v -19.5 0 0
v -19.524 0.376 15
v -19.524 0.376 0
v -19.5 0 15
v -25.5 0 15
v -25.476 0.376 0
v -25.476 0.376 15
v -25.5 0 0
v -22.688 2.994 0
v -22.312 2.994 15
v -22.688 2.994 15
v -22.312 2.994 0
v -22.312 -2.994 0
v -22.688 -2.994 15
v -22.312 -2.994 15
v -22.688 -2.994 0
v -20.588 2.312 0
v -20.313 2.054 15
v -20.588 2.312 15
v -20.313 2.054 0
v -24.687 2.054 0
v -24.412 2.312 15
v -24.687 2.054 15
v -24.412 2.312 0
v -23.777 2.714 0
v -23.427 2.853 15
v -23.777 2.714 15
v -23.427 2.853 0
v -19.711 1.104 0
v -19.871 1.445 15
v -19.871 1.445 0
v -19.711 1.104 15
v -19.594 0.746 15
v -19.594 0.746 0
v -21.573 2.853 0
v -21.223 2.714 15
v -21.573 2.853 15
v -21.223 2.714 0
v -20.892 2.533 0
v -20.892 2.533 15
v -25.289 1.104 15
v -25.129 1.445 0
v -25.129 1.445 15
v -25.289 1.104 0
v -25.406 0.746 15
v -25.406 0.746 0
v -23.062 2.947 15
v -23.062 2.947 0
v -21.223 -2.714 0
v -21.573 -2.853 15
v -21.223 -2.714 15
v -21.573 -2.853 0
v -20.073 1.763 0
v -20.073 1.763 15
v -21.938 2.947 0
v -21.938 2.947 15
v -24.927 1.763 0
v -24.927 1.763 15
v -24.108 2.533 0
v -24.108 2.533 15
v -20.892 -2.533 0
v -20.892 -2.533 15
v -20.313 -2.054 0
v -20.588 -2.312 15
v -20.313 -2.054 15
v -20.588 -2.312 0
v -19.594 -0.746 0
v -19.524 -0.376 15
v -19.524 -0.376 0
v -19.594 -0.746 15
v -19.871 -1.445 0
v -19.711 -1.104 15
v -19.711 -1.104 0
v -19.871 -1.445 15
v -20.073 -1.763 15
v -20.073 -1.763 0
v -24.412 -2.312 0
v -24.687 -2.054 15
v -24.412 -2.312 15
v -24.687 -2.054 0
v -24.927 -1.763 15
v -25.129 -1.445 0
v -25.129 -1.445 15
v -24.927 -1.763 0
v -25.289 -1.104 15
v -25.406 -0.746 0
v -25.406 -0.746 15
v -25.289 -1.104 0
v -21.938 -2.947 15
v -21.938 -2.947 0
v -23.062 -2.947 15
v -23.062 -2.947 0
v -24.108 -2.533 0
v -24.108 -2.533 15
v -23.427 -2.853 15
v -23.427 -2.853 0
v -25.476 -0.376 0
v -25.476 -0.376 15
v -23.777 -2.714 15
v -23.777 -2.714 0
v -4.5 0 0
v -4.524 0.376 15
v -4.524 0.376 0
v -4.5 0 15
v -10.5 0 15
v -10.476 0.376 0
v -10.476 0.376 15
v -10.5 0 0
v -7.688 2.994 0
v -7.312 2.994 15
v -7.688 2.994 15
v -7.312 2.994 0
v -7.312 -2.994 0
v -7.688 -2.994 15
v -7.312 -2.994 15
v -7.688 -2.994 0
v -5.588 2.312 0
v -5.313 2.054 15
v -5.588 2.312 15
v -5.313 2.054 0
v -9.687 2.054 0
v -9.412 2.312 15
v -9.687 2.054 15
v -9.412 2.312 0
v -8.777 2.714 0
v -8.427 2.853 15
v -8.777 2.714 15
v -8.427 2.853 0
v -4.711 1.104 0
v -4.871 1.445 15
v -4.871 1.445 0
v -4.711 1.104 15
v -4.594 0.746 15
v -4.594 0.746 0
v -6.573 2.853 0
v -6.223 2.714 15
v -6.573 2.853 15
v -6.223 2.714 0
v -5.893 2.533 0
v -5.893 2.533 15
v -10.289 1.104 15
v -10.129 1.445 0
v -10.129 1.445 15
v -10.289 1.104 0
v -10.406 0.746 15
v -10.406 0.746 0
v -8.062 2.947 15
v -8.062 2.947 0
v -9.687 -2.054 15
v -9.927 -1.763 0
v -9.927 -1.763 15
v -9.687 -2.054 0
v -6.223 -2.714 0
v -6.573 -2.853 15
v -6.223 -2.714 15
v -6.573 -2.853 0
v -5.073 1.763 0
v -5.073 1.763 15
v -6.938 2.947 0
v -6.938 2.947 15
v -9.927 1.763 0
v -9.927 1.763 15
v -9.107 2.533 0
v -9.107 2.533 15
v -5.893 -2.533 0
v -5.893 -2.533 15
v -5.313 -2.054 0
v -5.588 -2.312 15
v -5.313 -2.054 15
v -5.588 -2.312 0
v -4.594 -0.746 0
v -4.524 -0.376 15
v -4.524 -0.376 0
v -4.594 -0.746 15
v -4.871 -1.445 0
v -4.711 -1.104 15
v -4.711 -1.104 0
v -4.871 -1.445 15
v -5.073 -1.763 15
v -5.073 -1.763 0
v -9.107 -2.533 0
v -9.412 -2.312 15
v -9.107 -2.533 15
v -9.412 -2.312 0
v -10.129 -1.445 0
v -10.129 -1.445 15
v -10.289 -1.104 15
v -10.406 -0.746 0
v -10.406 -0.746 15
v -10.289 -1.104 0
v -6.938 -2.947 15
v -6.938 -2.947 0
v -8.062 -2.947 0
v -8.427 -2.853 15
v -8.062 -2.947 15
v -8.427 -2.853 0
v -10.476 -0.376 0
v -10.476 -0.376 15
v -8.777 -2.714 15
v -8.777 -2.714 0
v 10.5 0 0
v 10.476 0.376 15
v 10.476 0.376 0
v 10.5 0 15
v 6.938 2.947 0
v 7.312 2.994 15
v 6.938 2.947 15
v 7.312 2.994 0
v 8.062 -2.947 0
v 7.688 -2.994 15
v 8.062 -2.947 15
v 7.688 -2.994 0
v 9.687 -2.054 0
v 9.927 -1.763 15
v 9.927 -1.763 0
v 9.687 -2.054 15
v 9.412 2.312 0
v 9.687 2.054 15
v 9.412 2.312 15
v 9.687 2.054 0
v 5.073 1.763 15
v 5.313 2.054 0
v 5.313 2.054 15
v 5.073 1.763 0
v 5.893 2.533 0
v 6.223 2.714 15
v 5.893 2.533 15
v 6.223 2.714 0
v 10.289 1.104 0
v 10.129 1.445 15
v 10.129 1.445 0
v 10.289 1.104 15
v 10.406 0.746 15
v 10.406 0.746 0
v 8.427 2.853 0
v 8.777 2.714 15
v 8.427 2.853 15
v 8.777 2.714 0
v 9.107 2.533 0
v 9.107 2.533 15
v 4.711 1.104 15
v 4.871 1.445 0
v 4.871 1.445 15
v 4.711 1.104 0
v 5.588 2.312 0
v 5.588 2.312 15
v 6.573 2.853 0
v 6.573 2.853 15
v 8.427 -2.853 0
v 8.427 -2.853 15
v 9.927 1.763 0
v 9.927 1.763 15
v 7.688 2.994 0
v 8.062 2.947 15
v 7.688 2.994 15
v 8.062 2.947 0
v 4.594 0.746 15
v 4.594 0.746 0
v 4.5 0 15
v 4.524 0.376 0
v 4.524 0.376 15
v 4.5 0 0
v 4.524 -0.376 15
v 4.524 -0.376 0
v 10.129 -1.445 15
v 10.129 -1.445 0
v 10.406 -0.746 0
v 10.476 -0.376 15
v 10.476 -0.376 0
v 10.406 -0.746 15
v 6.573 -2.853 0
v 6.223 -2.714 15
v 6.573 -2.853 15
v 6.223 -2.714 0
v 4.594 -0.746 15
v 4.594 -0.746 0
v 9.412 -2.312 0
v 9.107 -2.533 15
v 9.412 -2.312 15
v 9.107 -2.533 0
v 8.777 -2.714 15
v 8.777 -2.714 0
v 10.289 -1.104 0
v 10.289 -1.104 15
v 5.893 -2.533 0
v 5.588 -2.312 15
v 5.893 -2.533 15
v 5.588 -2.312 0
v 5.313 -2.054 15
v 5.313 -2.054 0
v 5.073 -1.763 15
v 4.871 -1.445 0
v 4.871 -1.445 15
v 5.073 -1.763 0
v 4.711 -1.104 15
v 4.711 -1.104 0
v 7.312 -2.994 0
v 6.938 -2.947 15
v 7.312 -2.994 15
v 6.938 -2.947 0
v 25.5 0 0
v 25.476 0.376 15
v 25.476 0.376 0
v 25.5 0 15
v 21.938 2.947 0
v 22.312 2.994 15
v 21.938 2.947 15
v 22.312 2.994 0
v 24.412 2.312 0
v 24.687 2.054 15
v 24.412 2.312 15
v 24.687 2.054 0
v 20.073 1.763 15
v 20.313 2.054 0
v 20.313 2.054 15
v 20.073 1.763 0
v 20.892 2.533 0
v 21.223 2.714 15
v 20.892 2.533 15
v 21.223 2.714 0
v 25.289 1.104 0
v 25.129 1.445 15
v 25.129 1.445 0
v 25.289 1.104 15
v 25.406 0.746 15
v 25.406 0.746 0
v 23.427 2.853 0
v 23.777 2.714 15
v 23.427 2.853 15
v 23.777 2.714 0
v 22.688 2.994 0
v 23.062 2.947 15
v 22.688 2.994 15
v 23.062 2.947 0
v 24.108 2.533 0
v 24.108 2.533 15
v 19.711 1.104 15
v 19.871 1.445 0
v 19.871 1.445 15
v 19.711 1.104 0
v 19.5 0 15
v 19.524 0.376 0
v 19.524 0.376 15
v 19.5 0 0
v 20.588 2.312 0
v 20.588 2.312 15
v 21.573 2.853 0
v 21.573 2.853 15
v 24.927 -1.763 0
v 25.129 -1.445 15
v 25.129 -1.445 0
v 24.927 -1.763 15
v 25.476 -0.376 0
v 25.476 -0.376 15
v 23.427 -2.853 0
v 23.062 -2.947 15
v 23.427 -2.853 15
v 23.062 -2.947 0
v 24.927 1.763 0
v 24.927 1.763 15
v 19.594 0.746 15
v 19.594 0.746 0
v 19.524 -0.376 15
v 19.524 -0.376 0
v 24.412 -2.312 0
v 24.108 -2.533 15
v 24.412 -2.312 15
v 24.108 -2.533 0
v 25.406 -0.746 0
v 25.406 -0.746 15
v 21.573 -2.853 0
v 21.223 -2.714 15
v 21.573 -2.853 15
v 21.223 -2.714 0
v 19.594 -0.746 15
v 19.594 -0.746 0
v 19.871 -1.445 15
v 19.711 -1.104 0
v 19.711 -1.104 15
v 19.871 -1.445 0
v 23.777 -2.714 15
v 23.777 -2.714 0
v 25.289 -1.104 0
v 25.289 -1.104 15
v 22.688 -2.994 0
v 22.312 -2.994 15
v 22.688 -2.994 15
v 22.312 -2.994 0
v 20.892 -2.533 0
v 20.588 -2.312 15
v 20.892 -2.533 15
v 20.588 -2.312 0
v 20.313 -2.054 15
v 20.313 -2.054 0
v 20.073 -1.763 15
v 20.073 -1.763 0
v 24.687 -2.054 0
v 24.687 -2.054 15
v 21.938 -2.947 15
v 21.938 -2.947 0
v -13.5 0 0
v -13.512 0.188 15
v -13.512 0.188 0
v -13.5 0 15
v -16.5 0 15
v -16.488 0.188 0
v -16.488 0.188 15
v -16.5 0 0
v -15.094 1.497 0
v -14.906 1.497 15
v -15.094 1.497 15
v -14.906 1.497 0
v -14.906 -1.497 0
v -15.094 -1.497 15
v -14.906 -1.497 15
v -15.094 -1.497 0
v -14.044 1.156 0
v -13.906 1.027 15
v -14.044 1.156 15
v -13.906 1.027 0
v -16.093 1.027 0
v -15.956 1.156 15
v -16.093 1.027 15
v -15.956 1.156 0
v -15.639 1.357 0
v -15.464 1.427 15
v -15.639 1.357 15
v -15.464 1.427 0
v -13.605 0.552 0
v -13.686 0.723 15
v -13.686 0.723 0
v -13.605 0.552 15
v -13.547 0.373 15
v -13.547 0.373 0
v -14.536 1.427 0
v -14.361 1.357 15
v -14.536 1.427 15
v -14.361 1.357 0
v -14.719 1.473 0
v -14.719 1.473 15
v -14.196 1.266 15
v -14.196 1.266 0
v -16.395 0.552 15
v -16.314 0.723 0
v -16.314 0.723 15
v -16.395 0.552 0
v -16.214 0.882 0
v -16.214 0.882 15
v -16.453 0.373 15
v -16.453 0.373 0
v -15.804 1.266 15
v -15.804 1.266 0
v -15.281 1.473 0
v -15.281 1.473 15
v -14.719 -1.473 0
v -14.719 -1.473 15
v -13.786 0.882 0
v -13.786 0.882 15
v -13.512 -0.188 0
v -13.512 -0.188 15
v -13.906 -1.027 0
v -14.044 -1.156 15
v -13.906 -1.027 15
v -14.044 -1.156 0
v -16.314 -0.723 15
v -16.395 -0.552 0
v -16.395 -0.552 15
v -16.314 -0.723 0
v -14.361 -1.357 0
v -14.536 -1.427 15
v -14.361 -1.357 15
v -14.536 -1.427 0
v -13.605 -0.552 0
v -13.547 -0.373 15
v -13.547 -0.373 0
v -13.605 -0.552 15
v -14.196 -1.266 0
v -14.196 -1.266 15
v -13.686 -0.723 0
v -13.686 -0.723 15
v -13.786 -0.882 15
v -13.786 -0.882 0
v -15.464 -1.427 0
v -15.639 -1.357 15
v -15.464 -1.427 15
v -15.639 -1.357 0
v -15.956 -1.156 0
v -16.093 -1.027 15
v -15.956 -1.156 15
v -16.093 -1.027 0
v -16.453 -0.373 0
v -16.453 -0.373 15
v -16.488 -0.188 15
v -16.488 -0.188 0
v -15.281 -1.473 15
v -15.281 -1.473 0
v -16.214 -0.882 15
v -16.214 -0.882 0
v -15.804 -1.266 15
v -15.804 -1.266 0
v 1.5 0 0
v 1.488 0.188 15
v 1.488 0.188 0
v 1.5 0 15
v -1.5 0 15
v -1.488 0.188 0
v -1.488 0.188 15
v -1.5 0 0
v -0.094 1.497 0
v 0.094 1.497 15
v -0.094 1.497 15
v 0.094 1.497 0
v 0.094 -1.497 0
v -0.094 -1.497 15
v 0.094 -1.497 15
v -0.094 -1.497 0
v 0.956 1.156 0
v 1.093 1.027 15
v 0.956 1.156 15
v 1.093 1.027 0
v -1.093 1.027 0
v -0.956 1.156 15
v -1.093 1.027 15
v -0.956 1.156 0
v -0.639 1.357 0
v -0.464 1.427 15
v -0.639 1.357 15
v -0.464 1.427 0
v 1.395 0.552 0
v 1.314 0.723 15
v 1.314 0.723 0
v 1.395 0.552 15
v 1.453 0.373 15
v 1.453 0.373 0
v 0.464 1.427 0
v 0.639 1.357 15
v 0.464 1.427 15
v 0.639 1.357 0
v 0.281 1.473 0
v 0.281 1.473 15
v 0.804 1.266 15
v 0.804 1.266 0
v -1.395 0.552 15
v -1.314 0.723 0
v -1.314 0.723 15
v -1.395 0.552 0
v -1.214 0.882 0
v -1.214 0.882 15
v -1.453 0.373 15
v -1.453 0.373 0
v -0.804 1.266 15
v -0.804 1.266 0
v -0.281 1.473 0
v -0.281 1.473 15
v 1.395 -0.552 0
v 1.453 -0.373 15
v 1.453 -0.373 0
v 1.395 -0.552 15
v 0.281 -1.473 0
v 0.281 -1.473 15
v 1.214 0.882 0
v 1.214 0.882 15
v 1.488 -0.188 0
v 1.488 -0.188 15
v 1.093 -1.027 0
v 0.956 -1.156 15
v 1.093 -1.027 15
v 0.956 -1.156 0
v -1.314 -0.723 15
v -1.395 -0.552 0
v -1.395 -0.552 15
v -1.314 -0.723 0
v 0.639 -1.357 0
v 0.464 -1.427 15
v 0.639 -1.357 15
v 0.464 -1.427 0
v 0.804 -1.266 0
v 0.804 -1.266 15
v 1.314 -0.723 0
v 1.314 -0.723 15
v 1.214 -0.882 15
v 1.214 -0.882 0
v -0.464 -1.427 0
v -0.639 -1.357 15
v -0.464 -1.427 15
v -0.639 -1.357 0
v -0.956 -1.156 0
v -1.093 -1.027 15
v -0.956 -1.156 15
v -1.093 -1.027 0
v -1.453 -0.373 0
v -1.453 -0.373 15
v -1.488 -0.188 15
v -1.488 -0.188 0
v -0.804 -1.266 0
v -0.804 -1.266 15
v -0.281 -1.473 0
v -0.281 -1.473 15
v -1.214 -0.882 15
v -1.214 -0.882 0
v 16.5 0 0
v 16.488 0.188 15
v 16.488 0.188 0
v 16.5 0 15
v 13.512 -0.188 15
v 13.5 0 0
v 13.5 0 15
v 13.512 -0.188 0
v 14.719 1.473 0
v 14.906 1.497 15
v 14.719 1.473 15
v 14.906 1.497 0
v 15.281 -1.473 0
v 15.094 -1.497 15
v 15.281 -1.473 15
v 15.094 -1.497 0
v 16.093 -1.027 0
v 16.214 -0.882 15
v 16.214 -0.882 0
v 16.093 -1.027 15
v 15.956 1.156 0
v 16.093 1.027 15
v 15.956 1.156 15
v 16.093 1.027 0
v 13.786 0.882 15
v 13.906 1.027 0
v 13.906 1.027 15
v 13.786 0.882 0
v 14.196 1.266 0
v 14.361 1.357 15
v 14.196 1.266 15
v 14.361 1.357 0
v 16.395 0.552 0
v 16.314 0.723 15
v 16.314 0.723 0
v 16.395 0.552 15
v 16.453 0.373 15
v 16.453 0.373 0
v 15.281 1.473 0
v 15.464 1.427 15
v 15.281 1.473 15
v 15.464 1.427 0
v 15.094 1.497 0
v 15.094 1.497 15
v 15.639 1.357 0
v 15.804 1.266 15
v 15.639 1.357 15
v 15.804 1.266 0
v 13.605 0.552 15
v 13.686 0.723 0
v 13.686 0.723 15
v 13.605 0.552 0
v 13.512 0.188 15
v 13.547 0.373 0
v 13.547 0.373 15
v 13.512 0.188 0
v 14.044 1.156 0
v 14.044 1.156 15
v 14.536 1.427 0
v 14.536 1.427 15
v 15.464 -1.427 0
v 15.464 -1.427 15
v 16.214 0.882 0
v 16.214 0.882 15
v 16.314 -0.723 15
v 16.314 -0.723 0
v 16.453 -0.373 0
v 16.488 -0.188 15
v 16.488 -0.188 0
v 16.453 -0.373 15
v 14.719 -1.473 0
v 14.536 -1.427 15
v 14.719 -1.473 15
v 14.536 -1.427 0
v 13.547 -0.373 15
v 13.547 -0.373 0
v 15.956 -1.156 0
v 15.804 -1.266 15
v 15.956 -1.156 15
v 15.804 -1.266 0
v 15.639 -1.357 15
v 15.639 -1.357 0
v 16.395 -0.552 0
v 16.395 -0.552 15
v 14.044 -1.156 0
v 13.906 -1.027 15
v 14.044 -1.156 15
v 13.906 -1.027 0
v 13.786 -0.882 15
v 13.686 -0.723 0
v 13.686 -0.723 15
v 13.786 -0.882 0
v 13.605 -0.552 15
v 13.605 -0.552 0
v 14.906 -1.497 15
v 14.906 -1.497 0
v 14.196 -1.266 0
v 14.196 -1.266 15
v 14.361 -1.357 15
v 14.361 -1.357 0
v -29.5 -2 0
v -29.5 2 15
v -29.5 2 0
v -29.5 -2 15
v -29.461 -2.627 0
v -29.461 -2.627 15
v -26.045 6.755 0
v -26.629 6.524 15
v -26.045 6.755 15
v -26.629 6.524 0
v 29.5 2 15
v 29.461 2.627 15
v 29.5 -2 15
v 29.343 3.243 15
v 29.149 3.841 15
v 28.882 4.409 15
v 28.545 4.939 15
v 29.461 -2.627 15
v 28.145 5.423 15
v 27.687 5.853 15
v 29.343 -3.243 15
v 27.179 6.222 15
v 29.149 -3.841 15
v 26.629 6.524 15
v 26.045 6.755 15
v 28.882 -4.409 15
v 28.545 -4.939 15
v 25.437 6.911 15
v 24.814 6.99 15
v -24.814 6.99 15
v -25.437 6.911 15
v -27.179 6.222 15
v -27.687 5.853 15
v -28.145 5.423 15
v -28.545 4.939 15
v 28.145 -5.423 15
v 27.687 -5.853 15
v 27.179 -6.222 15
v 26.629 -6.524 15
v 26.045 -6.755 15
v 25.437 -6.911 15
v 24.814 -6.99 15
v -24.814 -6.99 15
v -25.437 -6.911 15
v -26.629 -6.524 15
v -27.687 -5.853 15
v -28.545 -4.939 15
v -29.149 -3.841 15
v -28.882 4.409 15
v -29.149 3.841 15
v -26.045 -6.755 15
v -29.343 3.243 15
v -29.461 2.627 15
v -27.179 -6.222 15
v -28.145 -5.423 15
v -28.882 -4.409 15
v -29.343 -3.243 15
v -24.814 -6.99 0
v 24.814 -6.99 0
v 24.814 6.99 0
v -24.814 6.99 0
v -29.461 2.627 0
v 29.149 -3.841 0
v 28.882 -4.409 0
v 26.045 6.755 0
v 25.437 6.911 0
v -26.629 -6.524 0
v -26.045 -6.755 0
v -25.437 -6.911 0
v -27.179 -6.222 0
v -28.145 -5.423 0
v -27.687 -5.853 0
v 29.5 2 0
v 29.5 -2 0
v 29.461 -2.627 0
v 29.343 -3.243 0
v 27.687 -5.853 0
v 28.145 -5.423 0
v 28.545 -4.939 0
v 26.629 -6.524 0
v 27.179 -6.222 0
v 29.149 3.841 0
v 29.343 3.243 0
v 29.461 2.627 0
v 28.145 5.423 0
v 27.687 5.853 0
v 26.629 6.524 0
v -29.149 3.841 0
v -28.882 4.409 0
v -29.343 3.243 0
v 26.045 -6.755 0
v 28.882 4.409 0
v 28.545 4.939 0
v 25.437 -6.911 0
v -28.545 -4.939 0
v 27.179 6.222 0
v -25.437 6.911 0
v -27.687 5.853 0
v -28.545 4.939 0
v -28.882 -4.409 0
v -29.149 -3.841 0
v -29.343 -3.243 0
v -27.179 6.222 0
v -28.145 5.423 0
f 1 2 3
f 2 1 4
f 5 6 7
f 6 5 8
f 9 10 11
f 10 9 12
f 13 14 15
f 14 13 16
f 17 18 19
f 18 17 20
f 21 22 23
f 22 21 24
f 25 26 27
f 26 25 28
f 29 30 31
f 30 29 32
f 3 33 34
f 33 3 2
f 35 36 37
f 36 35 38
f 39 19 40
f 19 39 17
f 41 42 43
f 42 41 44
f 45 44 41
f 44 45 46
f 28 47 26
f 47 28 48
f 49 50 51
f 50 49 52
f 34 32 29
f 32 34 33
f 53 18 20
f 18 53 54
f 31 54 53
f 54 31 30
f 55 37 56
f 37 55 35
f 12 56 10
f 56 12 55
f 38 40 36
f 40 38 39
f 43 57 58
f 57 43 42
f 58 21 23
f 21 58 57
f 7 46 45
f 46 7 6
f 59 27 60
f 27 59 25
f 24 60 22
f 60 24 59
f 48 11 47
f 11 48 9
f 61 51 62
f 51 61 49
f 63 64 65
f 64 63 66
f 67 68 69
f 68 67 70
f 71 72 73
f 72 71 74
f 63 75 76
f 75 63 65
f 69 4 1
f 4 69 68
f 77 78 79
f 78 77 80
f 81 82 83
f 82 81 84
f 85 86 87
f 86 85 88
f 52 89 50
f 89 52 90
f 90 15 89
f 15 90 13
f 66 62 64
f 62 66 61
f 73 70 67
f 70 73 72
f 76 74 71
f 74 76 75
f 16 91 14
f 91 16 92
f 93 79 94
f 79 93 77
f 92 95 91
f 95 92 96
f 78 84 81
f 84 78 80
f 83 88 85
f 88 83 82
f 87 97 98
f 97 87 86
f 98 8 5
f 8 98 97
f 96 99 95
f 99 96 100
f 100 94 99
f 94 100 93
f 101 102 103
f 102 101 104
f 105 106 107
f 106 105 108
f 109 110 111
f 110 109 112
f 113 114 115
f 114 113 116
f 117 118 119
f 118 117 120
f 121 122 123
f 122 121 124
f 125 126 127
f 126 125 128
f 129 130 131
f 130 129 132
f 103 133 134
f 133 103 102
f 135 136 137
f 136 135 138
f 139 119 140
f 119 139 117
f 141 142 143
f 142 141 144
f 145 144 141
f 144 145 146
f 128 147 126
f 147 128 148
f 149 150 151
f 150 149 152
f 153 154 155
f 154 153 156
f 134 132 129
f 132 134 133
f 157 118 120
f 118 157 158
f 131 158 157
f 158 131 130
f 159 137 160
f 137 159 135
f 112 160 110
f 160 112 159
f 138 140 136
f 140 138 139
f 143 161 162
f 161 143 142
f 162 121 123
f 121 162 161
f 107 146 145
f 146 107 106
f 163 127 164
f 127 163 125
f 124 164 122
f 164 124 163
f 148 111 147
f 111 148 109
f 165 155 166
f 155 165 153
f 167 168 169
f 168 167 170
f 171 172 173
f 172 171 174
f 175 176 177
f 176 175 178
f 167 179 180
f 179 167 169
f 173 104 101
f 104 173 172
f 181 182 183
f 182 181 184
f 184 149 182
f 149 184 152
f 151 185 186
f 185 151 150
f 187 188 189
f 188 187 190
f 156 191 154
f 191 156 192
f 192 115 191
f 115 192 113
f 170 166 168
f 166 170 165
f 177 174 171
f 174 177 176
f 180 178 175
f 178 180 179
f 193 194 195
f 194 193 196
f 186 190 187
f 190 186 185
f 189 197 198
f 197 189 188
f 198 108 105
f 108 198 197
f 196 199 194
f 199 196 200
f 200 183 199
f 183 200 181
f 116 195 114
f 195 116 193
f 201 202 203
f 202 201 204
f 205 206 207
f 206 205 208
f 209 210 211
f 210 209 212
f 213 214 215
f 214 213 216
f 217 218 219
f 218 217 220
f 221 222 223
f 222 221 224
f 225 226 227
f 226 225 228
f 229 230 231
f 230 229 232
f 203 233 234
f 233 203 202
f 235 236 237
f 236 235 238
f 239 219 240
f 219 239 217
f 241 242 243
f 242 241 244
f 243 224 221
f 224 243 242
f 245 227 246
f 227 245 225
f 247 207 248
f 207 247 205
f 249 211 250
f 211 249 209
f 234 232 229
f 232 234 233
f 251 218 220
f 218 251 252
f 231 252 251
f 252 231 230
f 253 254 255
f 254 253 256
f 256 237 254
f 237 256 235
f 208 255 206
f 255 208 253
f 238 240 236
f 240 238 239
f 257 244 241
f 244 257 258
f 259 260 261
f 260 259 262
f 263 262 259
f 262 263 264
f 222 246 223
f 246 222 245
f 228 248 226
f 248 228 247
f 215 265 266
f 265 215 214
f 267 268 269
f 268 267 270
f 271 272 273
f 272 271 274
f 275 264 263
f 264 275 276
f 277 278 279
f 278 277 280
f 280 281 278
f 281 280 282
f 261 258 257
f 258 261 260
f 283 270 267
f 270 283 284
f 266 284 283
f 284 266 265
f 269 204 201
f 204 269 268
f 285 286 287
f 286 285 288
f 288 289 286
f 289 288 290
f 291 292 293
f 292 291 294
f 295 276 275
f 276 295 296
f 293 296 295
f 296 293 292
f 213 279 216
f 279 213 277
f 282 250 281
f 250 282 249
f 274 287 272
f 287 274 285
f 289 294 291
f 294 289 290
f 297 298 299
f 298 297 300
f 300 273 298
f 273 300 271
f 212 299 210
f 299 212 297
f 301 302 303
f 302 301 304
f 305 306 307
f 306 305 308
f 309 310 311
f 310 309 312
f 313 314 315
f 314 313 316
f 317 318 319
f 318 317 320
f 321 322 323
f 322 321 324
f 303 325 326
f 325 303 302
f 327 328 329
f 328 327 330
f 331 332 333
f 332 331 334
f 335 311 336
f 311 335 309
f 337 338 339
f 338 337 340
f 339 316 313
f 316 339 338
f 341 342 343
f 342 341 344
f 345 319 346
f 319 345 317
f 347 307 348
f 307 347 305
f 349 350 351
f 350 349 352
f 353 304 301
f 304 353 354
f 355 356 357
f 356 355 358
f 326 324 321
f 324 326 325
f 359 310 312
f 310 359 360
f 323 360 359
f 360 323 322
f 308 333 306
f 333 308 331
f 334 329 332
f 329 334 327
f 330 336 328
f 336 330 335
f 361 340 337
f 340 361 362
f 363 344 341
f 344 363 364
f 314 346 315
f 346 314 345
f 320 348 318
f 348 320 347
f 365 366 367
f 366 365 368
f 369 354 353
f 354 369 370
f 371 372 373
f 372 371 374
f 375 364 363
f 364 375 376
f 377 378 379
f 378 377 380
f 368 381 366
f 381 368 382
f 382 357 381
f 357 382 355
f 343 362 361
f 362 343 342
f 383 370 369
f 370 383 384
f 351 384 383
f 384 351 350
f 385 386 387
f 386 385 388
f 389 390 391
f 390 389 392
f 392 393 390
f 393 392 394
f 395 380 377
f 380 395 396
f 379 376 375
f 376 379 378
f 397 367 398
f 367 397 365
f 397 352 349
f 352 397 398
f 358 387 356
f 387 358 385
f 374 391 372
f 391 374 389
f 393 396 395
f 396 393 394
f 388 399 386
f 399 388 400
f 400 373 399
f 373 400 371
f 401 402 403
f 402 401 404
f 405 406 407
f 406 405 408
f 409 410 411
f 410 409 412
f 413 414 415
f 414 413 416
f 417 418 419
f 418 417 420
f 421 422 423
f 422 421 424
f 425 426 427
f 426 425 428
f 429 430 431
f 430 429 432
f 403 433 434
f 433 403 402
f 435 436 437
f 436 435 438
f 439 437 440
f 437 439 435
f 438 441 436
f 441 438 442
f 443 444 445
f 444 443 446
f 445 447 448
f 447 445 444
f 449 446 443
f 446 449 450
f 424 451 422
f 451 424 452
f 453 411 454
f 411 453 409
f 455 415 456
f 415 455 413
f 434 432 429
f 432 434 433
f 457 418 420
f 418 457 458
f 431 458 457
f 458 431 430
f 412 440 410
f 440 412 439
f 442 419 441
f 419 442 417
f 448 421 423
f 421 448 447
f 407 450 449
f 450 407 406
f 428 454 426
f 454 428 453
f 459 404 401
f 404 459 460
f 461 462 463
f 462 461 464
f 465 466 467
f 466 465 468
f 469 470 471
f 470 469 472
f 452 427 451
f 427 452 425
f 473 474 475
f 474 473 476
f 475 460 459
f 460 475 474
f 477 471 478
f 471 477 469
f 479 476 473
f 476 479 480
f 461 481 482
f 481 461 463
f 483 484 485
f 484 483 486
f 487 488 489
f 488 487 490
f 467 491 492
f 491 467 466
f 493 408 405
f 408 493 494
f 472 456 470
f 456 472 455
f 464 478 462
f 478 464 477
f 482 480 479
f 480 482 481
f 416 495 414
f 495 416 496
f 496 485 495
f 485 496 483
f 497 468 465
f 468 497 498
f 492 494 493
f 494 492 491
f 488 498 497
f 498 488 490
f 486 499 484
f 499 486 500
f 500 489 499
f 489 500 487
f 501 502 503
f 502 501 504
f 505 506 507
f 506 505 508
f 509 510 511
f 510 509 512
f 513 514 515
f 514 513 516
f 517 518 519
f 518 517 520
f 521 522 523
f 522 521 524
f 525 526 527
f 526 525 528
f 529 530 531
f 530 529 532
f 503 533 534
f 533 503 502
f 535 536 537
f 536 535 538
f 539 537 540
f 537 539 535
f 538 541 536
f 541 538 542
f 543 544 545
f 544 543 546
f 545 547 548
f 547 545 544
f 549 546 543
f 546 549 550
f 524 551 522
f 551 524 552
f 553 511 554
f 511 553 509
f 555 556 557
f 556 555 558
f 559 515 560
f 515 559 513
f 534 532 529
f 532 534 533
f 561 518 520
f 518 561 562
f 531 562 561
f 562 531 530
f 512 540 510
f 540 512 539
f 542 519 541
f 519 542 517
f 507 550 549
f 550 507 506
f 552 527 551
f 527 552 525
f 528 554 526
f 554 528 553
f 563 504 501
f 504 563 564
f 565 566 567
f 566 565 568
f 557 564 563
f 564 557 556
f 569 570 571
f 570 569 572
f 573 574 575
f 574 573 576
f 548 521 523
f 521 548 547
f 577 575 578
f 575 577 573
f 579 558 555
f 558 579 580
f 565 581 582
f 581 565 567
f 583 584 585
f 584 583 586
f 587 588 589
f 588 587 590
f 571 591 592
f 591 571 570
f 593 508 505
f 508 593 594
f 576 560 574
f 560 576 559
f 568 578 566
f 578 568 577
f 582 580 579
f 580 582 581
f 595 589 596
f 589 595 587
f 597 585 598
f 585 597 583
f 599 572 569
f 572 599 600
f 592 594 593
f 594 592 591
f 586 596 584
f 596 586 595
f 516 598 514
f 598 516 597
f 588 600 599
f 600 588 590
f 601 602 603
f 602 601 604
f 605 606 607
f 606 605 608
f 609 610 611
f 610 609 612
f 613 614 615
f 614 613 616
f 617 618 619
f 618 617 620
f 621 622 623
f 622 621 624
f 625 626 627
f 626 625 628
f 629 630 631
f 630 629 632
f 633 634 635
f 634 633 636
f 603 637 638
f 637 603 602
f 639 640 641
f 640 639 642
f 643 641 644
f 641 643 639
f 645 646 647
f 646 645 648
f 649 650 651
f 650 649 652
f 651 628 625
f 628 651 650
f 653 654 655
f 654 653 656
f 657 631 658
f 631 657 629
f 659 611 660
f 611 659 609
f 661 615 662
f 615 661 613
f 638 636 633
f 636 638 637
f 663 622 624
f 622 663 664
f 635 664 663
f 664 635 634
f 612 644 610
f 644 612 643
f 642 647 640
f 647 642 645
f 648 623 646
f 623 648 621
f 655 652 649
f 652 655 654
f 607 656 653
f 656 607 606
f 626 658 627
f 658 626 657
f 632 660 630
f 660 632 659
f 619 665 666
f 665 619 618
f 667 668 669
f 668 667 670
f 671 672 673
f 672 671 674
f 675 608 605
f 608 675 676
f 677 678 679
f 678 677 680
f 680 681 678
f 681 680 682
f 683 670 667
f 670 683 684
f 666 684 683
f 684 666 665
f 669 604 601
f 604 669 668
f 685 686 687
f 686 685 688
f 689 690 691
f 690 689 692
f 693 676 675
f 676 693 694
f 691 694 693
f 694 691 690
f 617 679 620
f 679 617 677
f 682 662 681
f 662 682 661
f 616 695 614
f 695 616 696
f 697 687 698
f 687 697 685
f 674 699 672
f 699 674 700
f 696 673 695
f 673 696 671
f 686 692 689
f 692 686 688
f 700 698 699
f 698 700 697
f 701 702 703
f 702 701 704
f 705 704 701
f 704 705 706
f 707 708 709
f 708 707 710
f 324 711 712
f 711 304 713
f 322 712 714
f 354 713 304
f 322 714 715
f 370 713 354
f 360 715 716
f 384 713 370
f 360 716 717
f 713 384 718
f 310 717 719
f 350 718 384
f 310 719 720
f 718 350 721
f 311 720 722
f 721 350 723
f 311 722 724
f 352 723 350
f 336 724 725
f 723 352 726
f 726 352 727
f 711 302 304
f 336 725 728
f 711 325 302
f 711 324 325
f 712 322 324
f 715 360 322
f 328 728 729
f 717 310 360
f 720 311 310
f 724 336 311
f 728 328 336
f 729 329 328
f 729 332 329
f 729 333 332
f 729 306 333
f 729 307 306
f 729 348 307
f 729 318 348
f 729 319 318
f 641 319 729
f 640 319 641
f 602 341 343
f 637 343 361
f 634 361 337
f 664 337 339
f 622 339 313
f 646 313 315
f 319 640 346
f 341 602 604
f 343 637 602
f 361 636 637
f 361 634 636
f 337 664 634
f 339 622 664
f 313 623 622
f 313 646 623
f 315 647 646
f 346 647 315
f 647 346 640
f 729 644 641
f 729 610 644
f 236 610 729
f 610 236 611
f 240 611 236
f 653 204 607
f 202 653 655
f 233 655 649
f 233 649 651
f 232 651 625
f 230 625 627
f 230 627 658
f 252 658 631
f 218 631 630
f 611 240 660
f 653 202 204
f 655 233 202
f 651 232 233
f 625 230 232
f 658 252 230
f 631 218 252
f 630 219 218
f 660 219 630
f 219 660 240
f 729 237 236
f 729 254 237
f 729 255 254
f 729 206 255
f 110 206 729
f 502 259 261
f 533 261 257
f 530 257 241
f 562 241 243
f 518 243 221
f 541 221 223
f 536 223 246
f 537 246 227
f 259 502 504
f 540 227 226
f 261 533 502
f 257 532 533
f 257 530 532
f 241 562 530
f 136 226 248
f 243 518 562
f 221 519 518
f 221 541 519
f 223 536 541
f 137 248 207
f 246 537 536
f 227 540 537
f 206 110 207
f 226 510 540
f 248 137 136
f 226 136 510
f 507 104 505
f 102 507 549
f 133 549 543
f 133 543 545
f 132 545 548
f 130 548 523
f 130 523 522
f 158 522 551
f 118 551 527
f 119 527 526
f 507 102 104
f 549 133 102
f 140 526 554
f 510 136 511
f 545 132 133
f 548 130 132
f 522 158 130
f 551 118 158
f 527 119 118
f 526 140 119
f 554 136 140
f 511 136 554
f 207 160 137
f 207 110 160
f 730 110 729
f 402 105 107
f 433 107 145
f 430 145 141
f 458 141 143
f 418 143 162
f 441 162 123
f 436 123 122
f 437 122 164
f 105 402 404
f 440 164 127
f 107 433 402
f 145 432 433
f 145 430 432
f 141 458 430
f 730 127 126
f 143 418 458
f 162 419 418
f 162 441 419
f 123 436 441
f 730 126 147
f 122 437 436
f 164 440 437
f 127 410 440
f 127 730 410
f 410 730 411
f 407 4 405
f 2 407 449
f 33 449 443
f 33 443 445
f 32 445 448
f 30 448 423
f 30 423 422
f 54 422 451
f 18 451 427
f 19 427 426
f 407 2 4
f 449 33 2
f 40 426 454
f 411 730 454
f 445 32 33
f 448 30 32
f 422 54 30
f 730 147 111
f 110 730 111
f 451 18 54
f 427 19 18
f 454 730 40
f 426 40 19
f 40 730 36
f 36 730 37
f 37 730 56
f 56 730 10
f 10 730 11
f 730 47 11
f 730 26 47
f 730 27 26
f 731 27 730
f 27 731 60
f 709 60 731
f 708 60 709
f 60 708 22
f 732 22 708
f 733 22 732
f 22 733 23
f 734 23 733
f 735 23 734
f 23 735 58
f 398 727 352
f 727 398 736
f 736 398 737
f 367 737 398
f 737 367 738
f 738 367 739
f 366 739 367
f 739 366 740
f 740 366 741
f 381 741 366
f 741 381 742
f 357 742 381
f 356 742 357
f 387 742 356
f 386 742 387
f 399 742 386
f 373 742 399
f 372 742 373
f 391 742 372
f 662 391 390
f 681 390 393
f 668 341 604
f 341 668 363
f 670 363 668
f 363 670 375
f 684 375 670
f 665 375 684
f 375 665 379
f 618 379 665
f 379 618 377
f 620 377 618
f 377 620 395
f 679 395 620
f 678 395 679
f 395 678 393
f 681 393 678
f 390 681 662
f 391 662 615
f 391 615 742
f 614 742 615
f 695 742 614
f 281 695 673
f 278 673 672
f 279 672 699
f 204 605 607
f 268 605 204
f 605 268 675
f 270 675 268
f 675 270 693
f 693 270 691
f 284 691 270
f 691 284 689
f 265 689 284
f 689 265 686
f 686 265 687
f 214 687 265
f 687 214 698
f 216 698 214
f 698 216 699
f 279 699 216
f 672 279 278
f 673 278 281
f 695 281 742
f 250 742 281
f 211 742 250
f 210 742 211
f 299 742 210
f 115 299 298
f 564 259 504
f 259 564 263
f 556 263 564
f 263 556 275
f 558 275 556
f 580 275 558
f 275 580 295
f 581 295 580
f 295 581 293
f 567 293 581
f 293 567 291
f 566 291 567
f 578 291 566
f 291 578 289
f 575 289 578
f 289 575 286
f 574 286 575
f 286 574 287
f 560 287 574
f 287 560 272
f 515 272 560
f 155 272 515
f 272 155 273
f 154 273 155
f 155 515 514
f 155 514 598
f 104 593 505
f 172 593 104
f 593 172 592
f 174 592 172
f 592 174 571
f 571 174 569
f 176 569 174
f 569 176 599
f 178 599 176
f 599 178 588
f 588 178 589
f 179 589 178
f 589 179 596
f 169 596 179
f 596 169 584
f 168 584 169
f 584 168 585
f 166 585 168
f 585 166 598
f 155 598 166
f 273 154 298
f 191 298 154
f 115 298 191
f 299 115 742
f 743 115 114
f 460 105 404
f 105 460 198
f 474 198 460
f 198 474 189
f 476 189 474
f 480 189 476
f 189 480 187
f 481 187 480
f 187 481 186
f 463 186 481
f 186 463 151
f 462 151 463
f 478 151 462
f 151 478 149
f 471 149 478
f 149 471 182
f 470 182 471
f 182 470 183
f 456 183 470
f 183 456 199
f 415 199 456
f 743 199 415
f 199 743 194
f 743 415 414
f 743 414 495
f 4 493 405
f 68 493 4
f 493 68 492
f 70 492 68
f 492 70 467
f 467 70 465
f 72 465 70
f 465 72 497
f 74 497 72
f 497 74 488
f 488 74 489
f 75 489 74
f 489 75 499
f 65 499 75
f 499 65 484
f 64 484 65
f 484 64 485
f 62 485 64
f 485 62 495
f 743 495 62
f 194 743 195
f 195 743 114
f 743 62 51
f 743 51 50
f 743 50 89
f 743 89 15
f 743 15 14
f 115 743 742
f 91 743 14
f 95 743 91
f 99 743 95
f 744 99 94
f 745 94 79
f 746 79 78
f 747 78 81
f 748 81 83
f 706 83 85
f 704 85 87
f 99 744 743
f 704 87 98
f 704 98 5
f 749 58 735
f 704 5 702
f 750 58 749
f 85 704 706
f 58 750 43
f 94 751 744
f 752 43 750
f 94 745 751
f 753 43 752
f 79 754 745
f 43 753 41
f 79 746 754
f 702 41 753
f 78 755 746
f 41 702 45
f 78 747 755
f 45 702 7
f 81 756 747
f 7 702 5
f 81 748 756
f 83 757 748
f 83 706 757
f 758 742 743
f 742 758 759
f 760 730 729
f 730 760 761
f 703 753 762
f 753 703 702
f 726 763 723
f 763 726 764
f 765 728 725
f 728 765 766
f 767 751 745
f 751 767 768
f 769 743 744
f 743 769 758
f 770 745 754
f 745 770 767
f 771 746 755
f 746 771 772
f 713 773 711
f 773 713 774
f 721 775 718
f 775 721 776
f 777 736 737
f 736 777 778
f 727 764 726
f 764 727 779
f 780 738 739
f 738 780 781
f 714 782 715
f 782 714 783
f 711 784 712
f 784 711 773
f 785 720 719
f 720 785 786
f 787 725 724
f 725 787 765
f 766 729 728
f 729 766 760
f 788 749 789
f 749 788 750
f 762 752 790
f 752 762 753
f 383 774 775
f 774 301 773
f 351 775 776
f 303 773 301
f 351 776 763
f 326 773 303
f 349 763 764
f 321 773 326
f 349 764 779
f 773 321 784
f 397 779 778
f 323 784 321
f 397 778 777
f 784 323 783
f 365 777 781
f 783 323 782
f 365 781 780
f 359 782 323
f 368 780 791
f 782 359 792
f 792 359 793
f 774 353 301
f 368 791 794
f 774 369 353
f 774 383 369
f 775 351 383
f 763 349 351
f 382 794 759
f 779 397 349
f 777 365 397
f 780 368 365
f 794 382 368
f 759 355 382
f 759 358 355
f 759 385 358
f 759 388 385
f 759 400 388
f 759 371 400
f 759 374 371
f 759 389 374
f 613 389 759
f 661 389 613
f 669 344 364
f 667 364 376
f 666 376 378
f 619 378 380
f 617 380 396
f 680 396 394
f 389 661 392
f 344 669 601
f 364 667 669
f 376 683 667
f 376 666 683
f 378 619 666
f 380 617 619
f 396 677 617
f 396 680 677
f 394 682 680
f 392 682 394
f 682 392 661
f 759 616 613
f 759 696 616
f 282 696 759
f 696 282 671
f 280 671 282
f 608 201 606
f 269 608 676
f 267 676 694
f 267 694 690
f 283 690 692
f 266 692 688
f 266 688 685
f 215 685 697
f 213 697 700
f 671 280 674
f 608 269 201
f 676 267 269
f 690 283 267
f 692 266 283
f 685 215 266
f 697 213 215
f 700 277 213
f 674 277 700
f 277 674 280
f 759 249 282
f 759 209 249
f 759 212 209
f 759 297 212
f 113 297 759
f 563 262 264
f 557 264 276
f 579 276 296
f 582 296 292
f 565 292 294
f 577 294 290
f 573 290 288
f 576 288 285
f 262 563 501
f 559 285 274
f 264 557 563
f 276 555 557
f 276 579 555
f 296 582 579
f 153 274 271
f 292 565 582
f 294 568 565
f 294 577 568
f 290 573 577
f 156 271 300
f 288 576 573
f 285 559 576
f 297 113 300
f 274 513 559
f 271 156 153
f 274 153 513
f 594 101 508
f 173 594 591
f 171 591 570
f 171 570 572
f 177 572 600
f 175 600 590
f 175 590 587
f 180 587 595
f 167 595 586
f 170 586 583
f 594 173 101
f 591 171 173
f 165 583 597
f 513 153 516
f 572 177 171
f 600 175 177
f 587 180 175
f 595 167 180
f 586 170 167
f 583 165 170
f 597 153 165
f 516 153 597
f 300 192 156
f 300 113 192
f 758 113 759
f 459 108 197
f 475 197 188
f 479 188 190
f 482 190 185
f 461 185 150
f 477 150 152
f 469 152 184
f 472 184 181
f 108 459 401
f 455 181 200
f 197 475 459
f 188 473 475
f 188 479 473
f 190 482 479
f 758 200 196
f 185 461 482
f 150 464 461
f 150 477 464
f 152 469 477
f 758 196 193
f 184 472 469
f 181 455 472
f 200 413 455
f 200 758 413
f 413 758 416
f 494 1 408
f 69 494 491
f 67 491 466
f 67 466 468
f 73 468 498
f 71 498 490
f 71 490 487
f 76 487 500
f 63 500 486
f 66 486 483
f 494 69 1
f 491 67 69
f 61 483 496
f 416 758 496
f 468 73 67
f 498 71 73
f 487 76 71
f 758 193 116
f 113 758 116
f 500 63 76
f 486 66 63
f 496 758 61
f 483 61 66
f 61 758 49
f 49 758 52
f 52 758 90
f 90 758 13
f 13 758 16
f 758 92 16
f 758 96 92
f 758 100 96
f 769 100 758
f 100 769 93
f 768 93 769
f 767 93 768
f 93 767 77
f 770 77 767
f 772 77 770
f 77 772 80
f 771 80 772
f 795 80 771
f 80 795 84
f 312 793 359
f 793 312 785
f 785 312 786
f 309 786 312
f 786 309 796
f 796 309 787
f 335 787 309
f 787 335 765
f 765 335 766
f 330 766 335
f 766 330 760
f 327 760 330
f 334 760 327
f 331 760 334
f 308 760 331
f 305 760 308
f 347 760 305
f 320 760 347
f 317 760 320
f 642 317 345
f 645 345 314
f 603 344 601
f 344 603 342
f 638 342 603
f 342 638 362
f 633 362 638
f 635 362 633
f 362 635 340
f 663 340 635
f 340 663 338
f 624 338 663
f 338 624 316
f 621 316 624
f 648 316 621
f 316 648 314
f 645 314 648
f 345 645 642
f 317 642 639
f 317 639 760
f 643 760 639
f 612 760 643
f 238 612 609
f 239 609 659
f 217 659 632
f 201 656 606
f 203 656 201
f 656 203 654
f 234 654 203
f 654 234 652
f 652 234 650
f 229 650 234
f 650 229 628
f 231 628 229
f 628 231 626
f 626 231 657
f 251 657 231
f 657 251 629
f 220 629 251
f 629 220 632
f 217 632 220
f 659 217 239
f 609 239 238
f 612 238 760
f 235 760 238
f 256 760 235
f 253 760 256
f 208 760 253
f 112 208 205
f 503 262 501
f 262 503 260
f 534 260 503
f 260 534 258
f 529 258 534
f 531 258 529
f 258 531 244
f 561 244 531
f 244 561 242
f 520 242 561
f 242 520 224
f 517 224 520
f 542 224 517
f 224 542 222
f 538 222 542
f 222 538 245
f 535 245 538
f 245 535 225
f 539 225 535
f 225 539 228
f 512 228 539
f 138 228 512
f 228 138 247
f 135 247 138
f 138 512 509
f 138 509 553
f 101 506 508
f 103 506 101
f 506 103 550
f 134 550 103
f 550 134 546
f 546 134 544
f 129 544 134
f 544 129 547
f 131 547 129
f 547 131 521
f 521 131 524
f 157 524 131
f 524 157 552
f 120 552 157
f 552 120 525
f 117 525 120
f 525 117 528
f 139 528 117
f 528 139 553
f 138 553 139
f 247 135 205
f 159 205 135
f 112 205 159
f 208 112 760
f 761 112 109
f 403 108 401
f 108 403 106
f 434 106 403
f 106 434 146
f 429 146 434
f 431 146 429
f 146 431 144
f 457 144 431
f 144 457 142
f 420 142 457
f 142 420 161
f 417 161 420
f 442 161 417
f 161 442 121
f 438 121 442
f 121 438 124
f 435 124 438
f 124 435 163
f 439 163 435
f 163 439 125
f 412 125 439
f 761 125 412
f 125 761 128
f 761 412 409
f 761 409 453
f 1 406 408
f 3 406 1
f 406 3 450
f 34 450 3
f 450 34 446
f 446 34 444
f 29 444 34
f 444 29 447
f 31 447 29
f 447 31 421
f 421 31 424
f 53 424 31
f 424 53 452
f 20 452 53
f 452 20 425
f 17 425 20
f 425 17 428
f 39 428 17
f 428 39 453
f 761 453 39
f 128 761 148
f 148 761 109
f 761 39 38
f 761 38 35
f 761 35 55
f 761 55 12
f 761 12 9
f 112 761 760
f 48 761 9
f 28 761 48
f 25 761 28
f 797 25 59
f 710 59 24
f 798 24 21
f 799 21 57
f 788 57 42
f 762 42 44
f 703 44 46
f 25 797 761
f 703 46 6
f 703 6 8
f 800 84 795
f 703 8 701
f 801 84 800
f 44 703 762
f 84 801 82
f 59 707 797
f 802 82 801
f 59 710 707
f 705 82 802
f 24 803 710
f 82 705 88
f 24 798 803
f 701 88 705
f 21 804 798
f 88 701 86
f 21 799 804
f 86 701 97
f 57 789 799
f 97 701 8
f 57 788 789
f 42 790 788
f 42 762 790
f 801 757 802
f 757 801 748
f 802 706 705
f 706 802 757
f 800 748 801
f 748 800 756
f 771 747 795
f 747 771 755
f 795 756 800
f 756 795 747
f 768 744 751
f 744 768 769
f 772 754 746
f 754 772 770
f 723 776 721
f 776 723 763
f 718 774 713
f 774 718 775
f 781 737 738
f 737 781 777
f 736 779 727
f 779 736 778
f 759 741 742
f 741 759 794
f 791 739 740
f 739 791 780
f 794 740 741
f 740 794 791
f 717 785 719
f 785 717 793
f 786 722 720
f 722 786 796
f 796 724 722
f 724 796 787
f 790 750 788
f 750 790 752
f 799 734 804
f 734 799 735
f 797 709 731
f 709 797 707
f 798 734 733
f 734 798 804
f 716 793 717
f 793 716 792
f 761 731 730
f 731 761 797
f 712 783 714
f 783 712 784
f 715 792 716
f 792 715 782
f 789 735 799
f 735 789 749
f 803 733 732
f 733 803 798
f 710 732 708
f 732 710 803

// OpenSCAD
$fn = 50;


difference() {
	union() {
		*color(alpha = 1.0000000000, c = "gray") {
			translate(v = [0, 7, 0]) {
				linear_extrude(height = 1) {
					text(font = "Arial:style=Bold", halign = "center", size = 4.5000000000, text = "COMMENT plate main", valign = "center");
				}
			}
		}
		hull() {
			translate(v = [-24.5000000000, 2.0000000000, 0]) {
				cylinder(h = 15, r = 5);
			}
			translate(v = [24.5000000000, 2.0000000000, 0]) {
				cylinder(h = 15, r = 5);
			}
			translate(v = [-24.5000000000, -2.0000000000, 0]) {
				cylinder(h = 15, r = 5);
			}
			translate(v = [24.5000000000, -2.0000000000, 0]) {
				cylinder(h = 15, r = 5);
			}
		}
	}
	union() {
		*color(alpha = 1.0000000000, c = "gray") {
			translate(v = [0, 7, 0]) {
				linear_extrude(height = 1) {
					text(font = "Arial:style=Bold", halign = "center", size = 4.5000000000, text = "COMMENT holes main", valign = "center");
				}
			}
		}
		translate(v = [-22.5000000000, 0.0000000000, 0]) {
			translate(v = [0, 0, -100]) {
				cylinder(h = 200, r = 3.0000000000);
			}
		}
		translate(v = [-7.5000000000, 0.0000000000, 0]) {
			translate(v = [0, 0, -100]) {
				cylinder(h = 200, r = 3.0000000000);
			}
		}
		translate(v = [7.5000000000, 0.0000000000, 0]) {
			translate(v = [0, 0, -100]) {
				cylinder(h = 200, r = 3.0000000000);
			}
		}
		translate(v = [22.5000000000, 0.0000000000, 0]) {
			translate(v = [0, 0, -100]) {
				cylinder(h = 200, r = 3.0000000000);
			}
		}
		translate(v = [-22.5000000000, 0.0000000000, 0]) {
			translate(v = [0, 0, -100]) {
				cylinder(h = 200, r = 1.5000000000);
			}
		}
		translate(v = [-15.0000000000, 0.0000000000, 0]) {
			translate(v = [0, 0, -100]) {
				cylinder(h = 200, r = 1.5000000000);
			}
		}
		translate(v = [-7.5000000000, 0.0000000000, 0]) {
			translate(v = [0, 0, -100]) {
				cylinder(h = 200, r = 1.5000000000);
			}
		}
		translate(v = [0, 0, -100]) {
			cylinder(h = 200, r = 1.5000000000);
		}
		translate(v = [7.5000000000, 0.0000000000, 0]) {
			translate(v = [0, 0, -100]) {
				cylinder(h = 200, r = 1.5000000000);
			}
		}
		translate(v = [15.0000000000, 0.0000000000, 0]) {
			translate(v = [0, 0, -100]) {
				cylinder(h = 200, r = 1.5000000000);
			}
		}
		translate(v = [22.5000000000, 0.0000000000, 0]) {
			translate(v = [0, 0, -100]) {
				cylinder(h = 200, r = 1.5000000000);
			}
		}
	}
}
